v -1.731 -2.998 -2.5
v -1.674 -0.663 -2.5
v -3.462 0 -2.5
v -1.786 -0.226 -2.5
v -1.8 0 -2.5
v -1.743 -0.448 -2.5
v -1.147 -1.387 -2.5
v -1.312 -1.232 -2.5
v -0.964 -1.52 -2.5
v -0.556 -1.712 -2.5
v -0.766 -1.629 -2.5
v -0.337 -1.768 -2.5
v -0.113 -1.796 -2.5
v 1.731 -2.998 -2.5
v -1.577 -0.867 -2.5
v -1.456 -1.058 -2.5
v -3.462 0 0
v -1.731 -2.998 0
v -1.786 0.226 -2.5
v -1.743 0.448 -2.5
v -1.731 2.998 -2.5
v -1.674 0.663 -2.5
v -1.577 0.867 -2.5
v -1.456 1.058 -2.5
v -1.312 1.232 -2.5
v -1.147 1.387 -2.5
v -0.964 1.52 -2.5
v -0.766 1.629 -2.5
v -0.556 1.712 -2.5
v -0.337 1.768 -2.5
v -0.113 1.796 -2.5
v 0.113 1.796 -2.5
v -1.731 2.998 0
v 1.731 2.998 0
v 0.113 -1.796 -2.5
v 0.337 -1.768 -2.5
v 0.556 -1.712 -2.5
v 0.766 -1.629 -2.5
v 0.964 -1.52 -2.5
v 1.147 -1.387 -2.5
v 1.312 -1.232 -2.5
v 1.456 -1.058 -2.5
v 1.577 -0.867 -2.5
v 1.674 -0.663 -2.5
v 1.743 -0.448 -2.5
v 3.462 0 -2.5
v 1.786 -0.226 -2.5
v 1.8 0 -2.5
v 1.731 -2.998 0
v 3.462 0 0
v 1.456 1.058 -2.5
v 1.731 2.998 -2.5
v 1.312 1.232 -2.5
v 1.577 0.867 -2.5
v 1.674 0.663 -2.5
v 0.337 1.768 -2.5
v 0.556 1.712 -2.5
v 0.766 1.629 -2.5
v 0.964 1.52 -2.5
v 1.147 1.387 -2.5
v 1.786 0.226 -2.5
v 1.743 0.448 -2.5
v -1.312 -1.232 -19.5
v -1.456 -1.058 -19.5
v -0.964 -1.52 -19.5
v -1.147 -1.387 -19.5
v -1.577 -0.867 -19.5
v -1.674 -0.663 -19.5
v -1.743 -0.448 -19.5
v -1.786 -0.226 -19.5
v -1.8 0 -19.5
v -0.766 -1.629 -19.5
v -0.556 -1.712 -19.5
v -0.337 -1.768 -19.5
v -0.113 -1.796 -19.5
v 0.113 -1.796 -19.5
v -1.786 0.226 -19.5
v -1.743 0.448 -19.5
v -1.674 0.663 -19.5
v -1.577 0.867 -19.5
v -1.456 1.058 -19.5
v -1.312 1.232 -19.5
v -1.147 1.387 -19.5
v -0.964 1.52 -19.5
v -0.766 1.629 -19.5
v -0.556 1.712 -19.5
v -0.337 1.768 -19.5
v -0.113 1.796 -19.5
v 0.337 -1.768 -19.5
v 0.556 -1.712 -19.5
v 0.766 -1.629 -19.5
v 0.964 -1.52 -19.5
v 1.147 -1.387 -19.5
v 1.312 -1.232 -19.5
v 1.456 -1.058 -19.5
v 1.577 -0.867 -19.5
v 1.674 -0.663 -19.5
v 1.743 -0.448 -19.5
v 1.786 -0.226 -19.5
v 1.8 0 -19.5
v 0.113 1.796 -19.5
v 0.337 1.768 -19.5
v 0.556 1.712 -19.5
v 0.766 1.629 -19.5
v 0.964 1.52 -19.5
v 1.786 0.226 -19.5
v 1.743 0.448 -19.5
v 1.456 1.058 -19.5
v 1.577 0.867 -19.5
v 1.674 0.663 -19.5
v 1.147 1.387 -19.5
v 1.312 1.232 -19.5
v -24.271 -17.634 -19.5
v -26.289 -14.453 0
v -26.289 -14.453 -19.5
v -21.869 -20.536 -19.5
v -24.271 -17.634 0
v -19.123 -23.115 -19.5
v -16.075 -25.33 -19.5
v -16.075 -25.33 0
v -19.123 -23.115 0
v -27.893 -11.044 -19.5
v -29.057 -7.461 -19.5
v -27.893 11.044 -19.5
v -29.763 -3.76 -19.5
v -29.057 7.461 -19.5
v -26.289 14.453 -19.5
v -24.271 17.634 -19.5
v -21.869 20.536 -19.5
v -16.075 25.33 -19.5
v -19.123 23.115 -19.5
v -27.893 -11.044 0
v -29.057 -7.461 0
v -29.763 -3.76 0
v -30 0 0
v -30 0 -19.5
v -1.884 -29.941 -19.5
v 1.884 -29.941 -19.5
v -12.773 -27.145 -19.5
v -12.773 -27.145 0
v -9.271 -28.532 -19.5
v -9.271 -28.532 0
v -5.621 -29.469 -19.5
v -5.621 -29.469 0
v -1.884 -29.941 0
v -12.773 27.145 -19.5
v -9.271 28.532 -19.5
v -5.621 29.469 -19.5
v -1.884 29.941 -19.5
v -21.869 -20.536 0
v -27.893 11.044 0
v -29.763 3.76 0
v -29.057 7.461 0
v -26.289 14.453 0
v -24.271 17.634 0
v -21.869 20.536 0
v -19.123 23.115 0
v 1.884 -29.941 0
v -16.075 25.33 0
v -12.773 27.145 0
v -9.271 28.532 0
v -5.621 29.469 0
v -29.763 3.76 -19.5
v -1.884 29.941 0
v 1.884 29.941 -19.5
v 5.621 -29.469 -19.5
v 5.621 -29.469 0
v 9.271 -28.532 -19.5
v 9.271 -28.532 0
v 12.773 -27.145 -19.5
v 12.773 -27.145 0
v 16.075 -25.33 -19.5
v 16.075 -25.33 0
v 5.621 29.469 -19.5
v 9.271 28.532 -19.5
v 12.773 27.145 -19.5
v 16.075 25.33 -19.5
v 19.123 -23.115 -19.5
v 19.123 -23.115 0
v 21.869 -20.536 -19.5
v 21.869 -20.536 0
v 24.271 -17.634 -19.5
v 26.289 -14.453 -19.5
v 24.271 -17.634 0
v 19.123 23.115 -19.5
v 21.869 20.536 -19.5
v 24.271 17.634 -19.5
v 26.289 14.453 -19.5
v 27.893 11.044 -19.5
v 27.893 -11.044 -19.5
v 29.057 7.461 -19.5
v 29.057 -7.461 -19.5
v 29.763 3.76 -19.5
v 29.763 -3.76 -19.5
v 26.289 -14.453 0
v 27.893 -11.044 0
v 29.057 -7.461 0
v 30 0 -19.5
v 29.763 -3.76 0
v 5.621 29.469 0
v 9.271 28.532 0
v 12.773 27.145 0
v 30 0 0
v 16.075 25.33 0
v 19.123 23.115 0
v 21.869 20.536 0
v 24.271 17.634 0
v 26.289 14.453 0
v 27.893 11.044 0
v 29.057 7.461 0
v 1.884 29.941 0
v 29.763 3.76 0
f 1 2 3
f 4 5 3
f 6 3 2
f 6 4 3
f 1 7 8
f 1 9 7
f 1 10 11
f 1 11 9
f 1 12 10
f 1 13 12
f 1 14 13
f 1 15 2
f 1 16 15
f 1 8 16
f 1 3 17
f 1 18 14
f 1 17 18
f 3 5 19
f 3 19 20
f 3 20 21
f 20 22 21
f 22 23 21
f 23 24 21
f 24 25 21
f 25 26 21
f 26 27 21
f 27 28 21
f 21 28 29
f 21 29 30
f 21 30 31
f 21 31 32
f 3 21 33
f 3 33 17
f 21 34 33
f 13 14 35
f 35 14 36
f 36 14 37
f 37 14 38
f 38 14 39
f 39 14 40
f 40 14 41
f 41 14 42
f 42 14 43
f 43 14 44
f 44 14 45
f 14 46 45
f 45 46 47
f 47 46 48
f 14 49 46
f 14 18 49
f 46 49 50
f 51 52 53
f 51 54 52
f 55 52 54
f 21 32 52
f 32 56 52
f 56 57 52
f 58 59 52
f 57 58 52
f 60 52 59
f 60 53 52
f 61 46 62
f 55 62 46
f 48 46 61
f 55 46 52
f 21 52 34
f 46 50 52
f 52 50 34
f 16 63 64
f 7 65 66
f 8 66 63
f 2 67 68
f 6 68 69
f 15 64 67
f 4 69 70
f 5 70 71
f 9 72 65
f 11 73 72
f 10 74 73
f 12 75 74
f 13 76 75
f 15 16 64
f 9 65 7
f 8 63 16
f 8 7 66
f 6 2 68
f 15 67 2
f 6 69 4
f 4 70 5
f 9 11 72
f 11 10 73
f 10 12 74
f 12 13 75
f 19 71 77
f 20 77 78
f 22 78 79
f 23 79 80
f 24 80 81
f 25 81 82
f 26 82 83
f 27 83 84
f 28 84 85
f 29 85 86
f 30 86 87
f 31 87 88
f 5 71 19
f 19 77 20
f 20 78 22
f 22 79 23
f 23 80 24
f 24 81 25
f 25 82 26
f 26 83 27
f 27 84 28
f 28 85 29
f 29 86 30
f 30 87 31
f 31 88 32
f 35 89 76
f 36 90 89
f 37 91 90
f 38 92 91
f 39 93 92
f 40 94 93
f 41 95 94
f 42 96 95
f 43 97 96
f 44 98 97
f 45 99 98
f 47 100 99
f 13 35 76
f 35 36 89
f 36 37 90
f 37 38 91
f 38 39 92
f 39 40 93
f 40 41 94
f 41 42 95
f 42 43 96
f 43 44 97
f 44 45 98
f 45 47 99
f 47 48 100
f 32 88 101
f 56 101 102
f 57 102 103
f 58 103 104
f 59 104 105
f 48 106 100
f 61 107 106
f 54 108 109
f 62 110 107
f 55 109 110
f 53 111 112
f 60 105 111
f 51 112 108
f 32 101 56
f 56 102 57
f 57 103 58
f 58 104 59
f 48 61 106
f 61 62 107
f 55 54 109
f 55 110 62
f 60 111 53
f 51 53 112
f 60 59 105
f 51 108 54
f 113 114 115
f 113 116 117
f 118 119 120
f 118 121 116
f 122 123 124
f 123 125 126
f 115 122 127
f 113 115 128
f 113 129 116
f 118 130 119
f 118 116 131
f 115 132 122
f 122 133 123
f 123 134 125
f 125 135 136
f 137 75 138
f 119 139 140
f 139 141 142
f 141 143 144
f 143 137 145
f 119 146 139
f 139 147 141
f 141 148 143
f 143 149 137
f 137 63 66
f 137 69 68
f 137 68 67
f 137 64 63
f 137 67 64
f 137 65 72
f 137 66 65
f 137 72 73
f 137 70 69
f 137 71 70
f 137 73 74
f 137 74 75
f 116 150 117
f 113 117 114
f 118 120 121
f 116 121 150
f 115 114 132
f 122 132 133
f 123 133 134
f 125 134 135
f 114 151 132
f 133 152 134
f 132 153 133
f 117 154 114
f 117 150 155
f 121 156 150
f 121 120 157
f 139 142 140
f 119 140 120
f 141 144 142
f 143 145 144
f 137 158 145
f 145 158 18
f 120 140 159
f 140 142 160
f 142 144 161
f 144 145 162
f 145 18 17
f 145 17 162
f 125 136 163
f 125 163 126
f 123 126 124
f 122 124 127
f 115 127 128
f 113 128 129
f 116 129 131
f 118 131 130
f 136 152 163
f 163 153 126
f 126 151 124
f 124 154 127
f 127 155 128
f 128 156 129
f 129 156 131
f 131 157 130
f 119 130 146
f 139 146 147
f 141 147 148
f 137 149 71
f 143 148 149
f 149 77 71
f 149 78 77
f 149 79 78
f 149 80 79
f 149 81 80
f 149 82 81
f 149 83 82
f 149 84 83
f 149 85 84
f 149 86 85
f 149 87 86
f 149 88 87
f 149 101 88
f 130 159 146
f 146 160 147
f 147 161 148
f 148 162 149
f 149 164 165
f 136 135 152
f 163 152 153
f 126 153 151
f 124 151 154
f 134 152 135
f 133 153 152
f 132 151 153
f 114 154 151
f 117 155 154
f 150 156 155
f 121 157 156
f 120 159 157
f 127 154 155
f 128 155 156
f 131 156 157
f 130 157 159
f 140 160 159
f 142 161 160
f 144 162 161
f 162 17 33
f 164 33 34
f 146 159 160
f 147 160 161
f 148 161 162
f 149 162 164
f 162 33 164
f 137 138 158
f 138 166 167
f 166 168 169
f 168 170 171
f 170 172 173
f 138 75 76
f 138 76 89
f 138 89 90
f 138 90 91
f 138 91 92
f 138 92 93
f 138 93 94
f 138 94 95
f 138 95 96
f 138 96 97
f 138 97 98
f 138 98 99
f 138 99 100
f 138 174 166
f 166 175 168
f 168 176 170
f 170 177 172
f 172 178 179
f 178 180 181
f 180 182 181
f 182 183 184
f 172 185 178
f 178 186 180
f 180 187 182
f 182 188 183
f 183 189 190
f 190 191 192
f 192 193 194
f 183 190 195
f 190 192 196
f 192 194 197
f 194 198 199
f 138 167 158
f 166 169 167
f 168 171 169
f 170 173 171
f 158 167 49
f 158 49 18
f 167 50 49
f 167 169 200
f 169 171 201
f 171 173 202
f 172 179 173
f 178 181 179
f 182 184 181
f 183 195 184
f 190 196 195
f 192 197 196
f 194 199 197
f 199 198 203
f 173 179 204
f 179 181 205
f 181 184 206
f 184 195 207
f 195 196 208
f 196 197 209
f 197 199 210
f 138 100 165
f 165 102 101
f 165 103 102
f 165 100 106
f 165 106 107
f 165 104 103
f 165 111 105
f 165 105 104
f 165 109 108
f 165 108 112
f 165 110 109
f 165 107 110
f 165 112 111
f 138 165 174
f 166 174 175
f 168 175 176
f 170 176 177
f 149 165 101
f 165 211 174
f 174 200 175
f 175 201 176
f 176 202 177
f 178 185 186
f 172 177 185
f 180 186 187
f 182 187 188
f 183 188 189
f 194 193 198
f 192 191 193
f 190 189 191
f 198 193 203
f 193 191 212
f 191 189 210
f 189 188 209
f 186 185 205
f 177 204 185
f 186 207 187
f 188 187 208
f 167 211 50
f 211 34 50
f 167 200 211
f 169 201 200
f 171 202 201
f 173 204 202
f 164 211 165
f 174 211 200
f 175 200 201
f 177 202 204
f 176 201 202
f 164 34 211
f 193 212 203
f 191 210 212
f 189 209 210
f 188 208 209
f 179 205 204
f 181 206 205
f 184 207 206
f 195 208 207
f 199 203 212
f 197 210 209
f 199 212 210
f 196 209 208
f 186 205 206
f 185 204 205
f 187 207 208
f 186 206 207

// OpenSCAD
$fn = 50;

difference() {
	union() {
		translate(v = [0, 0, -19.5]) {
			cylinder(h = 19.5, r = 30.0);
		}
	}
	union() {
		translate(v = [0, 0, 0]) {
			rotate(a = [0, 0, 0]) {
				difference() {
					union() {
						translate(v = [0, 0, -2.5]) {
							linear_extrude(height = 2.5) {
								polygon(points = [[3.4619999999999997, 0.0], [1.7310000000000003, 2.9981799479017264], [-1.7309999999999992, 2.9981799479017264], [-3.4619999999999997, 4.2397272186481365e-16], [-1.7310000000000014, -2.998179947901726], [1.7309999999999977, -2.9981799479017277]]);
							}
						}
					}
					union();
				}
			}
		}
		#translate(v = [0, 0, -100.0]) {
			cylinder(h = 200, r = 1.8);
		}
	}
}
